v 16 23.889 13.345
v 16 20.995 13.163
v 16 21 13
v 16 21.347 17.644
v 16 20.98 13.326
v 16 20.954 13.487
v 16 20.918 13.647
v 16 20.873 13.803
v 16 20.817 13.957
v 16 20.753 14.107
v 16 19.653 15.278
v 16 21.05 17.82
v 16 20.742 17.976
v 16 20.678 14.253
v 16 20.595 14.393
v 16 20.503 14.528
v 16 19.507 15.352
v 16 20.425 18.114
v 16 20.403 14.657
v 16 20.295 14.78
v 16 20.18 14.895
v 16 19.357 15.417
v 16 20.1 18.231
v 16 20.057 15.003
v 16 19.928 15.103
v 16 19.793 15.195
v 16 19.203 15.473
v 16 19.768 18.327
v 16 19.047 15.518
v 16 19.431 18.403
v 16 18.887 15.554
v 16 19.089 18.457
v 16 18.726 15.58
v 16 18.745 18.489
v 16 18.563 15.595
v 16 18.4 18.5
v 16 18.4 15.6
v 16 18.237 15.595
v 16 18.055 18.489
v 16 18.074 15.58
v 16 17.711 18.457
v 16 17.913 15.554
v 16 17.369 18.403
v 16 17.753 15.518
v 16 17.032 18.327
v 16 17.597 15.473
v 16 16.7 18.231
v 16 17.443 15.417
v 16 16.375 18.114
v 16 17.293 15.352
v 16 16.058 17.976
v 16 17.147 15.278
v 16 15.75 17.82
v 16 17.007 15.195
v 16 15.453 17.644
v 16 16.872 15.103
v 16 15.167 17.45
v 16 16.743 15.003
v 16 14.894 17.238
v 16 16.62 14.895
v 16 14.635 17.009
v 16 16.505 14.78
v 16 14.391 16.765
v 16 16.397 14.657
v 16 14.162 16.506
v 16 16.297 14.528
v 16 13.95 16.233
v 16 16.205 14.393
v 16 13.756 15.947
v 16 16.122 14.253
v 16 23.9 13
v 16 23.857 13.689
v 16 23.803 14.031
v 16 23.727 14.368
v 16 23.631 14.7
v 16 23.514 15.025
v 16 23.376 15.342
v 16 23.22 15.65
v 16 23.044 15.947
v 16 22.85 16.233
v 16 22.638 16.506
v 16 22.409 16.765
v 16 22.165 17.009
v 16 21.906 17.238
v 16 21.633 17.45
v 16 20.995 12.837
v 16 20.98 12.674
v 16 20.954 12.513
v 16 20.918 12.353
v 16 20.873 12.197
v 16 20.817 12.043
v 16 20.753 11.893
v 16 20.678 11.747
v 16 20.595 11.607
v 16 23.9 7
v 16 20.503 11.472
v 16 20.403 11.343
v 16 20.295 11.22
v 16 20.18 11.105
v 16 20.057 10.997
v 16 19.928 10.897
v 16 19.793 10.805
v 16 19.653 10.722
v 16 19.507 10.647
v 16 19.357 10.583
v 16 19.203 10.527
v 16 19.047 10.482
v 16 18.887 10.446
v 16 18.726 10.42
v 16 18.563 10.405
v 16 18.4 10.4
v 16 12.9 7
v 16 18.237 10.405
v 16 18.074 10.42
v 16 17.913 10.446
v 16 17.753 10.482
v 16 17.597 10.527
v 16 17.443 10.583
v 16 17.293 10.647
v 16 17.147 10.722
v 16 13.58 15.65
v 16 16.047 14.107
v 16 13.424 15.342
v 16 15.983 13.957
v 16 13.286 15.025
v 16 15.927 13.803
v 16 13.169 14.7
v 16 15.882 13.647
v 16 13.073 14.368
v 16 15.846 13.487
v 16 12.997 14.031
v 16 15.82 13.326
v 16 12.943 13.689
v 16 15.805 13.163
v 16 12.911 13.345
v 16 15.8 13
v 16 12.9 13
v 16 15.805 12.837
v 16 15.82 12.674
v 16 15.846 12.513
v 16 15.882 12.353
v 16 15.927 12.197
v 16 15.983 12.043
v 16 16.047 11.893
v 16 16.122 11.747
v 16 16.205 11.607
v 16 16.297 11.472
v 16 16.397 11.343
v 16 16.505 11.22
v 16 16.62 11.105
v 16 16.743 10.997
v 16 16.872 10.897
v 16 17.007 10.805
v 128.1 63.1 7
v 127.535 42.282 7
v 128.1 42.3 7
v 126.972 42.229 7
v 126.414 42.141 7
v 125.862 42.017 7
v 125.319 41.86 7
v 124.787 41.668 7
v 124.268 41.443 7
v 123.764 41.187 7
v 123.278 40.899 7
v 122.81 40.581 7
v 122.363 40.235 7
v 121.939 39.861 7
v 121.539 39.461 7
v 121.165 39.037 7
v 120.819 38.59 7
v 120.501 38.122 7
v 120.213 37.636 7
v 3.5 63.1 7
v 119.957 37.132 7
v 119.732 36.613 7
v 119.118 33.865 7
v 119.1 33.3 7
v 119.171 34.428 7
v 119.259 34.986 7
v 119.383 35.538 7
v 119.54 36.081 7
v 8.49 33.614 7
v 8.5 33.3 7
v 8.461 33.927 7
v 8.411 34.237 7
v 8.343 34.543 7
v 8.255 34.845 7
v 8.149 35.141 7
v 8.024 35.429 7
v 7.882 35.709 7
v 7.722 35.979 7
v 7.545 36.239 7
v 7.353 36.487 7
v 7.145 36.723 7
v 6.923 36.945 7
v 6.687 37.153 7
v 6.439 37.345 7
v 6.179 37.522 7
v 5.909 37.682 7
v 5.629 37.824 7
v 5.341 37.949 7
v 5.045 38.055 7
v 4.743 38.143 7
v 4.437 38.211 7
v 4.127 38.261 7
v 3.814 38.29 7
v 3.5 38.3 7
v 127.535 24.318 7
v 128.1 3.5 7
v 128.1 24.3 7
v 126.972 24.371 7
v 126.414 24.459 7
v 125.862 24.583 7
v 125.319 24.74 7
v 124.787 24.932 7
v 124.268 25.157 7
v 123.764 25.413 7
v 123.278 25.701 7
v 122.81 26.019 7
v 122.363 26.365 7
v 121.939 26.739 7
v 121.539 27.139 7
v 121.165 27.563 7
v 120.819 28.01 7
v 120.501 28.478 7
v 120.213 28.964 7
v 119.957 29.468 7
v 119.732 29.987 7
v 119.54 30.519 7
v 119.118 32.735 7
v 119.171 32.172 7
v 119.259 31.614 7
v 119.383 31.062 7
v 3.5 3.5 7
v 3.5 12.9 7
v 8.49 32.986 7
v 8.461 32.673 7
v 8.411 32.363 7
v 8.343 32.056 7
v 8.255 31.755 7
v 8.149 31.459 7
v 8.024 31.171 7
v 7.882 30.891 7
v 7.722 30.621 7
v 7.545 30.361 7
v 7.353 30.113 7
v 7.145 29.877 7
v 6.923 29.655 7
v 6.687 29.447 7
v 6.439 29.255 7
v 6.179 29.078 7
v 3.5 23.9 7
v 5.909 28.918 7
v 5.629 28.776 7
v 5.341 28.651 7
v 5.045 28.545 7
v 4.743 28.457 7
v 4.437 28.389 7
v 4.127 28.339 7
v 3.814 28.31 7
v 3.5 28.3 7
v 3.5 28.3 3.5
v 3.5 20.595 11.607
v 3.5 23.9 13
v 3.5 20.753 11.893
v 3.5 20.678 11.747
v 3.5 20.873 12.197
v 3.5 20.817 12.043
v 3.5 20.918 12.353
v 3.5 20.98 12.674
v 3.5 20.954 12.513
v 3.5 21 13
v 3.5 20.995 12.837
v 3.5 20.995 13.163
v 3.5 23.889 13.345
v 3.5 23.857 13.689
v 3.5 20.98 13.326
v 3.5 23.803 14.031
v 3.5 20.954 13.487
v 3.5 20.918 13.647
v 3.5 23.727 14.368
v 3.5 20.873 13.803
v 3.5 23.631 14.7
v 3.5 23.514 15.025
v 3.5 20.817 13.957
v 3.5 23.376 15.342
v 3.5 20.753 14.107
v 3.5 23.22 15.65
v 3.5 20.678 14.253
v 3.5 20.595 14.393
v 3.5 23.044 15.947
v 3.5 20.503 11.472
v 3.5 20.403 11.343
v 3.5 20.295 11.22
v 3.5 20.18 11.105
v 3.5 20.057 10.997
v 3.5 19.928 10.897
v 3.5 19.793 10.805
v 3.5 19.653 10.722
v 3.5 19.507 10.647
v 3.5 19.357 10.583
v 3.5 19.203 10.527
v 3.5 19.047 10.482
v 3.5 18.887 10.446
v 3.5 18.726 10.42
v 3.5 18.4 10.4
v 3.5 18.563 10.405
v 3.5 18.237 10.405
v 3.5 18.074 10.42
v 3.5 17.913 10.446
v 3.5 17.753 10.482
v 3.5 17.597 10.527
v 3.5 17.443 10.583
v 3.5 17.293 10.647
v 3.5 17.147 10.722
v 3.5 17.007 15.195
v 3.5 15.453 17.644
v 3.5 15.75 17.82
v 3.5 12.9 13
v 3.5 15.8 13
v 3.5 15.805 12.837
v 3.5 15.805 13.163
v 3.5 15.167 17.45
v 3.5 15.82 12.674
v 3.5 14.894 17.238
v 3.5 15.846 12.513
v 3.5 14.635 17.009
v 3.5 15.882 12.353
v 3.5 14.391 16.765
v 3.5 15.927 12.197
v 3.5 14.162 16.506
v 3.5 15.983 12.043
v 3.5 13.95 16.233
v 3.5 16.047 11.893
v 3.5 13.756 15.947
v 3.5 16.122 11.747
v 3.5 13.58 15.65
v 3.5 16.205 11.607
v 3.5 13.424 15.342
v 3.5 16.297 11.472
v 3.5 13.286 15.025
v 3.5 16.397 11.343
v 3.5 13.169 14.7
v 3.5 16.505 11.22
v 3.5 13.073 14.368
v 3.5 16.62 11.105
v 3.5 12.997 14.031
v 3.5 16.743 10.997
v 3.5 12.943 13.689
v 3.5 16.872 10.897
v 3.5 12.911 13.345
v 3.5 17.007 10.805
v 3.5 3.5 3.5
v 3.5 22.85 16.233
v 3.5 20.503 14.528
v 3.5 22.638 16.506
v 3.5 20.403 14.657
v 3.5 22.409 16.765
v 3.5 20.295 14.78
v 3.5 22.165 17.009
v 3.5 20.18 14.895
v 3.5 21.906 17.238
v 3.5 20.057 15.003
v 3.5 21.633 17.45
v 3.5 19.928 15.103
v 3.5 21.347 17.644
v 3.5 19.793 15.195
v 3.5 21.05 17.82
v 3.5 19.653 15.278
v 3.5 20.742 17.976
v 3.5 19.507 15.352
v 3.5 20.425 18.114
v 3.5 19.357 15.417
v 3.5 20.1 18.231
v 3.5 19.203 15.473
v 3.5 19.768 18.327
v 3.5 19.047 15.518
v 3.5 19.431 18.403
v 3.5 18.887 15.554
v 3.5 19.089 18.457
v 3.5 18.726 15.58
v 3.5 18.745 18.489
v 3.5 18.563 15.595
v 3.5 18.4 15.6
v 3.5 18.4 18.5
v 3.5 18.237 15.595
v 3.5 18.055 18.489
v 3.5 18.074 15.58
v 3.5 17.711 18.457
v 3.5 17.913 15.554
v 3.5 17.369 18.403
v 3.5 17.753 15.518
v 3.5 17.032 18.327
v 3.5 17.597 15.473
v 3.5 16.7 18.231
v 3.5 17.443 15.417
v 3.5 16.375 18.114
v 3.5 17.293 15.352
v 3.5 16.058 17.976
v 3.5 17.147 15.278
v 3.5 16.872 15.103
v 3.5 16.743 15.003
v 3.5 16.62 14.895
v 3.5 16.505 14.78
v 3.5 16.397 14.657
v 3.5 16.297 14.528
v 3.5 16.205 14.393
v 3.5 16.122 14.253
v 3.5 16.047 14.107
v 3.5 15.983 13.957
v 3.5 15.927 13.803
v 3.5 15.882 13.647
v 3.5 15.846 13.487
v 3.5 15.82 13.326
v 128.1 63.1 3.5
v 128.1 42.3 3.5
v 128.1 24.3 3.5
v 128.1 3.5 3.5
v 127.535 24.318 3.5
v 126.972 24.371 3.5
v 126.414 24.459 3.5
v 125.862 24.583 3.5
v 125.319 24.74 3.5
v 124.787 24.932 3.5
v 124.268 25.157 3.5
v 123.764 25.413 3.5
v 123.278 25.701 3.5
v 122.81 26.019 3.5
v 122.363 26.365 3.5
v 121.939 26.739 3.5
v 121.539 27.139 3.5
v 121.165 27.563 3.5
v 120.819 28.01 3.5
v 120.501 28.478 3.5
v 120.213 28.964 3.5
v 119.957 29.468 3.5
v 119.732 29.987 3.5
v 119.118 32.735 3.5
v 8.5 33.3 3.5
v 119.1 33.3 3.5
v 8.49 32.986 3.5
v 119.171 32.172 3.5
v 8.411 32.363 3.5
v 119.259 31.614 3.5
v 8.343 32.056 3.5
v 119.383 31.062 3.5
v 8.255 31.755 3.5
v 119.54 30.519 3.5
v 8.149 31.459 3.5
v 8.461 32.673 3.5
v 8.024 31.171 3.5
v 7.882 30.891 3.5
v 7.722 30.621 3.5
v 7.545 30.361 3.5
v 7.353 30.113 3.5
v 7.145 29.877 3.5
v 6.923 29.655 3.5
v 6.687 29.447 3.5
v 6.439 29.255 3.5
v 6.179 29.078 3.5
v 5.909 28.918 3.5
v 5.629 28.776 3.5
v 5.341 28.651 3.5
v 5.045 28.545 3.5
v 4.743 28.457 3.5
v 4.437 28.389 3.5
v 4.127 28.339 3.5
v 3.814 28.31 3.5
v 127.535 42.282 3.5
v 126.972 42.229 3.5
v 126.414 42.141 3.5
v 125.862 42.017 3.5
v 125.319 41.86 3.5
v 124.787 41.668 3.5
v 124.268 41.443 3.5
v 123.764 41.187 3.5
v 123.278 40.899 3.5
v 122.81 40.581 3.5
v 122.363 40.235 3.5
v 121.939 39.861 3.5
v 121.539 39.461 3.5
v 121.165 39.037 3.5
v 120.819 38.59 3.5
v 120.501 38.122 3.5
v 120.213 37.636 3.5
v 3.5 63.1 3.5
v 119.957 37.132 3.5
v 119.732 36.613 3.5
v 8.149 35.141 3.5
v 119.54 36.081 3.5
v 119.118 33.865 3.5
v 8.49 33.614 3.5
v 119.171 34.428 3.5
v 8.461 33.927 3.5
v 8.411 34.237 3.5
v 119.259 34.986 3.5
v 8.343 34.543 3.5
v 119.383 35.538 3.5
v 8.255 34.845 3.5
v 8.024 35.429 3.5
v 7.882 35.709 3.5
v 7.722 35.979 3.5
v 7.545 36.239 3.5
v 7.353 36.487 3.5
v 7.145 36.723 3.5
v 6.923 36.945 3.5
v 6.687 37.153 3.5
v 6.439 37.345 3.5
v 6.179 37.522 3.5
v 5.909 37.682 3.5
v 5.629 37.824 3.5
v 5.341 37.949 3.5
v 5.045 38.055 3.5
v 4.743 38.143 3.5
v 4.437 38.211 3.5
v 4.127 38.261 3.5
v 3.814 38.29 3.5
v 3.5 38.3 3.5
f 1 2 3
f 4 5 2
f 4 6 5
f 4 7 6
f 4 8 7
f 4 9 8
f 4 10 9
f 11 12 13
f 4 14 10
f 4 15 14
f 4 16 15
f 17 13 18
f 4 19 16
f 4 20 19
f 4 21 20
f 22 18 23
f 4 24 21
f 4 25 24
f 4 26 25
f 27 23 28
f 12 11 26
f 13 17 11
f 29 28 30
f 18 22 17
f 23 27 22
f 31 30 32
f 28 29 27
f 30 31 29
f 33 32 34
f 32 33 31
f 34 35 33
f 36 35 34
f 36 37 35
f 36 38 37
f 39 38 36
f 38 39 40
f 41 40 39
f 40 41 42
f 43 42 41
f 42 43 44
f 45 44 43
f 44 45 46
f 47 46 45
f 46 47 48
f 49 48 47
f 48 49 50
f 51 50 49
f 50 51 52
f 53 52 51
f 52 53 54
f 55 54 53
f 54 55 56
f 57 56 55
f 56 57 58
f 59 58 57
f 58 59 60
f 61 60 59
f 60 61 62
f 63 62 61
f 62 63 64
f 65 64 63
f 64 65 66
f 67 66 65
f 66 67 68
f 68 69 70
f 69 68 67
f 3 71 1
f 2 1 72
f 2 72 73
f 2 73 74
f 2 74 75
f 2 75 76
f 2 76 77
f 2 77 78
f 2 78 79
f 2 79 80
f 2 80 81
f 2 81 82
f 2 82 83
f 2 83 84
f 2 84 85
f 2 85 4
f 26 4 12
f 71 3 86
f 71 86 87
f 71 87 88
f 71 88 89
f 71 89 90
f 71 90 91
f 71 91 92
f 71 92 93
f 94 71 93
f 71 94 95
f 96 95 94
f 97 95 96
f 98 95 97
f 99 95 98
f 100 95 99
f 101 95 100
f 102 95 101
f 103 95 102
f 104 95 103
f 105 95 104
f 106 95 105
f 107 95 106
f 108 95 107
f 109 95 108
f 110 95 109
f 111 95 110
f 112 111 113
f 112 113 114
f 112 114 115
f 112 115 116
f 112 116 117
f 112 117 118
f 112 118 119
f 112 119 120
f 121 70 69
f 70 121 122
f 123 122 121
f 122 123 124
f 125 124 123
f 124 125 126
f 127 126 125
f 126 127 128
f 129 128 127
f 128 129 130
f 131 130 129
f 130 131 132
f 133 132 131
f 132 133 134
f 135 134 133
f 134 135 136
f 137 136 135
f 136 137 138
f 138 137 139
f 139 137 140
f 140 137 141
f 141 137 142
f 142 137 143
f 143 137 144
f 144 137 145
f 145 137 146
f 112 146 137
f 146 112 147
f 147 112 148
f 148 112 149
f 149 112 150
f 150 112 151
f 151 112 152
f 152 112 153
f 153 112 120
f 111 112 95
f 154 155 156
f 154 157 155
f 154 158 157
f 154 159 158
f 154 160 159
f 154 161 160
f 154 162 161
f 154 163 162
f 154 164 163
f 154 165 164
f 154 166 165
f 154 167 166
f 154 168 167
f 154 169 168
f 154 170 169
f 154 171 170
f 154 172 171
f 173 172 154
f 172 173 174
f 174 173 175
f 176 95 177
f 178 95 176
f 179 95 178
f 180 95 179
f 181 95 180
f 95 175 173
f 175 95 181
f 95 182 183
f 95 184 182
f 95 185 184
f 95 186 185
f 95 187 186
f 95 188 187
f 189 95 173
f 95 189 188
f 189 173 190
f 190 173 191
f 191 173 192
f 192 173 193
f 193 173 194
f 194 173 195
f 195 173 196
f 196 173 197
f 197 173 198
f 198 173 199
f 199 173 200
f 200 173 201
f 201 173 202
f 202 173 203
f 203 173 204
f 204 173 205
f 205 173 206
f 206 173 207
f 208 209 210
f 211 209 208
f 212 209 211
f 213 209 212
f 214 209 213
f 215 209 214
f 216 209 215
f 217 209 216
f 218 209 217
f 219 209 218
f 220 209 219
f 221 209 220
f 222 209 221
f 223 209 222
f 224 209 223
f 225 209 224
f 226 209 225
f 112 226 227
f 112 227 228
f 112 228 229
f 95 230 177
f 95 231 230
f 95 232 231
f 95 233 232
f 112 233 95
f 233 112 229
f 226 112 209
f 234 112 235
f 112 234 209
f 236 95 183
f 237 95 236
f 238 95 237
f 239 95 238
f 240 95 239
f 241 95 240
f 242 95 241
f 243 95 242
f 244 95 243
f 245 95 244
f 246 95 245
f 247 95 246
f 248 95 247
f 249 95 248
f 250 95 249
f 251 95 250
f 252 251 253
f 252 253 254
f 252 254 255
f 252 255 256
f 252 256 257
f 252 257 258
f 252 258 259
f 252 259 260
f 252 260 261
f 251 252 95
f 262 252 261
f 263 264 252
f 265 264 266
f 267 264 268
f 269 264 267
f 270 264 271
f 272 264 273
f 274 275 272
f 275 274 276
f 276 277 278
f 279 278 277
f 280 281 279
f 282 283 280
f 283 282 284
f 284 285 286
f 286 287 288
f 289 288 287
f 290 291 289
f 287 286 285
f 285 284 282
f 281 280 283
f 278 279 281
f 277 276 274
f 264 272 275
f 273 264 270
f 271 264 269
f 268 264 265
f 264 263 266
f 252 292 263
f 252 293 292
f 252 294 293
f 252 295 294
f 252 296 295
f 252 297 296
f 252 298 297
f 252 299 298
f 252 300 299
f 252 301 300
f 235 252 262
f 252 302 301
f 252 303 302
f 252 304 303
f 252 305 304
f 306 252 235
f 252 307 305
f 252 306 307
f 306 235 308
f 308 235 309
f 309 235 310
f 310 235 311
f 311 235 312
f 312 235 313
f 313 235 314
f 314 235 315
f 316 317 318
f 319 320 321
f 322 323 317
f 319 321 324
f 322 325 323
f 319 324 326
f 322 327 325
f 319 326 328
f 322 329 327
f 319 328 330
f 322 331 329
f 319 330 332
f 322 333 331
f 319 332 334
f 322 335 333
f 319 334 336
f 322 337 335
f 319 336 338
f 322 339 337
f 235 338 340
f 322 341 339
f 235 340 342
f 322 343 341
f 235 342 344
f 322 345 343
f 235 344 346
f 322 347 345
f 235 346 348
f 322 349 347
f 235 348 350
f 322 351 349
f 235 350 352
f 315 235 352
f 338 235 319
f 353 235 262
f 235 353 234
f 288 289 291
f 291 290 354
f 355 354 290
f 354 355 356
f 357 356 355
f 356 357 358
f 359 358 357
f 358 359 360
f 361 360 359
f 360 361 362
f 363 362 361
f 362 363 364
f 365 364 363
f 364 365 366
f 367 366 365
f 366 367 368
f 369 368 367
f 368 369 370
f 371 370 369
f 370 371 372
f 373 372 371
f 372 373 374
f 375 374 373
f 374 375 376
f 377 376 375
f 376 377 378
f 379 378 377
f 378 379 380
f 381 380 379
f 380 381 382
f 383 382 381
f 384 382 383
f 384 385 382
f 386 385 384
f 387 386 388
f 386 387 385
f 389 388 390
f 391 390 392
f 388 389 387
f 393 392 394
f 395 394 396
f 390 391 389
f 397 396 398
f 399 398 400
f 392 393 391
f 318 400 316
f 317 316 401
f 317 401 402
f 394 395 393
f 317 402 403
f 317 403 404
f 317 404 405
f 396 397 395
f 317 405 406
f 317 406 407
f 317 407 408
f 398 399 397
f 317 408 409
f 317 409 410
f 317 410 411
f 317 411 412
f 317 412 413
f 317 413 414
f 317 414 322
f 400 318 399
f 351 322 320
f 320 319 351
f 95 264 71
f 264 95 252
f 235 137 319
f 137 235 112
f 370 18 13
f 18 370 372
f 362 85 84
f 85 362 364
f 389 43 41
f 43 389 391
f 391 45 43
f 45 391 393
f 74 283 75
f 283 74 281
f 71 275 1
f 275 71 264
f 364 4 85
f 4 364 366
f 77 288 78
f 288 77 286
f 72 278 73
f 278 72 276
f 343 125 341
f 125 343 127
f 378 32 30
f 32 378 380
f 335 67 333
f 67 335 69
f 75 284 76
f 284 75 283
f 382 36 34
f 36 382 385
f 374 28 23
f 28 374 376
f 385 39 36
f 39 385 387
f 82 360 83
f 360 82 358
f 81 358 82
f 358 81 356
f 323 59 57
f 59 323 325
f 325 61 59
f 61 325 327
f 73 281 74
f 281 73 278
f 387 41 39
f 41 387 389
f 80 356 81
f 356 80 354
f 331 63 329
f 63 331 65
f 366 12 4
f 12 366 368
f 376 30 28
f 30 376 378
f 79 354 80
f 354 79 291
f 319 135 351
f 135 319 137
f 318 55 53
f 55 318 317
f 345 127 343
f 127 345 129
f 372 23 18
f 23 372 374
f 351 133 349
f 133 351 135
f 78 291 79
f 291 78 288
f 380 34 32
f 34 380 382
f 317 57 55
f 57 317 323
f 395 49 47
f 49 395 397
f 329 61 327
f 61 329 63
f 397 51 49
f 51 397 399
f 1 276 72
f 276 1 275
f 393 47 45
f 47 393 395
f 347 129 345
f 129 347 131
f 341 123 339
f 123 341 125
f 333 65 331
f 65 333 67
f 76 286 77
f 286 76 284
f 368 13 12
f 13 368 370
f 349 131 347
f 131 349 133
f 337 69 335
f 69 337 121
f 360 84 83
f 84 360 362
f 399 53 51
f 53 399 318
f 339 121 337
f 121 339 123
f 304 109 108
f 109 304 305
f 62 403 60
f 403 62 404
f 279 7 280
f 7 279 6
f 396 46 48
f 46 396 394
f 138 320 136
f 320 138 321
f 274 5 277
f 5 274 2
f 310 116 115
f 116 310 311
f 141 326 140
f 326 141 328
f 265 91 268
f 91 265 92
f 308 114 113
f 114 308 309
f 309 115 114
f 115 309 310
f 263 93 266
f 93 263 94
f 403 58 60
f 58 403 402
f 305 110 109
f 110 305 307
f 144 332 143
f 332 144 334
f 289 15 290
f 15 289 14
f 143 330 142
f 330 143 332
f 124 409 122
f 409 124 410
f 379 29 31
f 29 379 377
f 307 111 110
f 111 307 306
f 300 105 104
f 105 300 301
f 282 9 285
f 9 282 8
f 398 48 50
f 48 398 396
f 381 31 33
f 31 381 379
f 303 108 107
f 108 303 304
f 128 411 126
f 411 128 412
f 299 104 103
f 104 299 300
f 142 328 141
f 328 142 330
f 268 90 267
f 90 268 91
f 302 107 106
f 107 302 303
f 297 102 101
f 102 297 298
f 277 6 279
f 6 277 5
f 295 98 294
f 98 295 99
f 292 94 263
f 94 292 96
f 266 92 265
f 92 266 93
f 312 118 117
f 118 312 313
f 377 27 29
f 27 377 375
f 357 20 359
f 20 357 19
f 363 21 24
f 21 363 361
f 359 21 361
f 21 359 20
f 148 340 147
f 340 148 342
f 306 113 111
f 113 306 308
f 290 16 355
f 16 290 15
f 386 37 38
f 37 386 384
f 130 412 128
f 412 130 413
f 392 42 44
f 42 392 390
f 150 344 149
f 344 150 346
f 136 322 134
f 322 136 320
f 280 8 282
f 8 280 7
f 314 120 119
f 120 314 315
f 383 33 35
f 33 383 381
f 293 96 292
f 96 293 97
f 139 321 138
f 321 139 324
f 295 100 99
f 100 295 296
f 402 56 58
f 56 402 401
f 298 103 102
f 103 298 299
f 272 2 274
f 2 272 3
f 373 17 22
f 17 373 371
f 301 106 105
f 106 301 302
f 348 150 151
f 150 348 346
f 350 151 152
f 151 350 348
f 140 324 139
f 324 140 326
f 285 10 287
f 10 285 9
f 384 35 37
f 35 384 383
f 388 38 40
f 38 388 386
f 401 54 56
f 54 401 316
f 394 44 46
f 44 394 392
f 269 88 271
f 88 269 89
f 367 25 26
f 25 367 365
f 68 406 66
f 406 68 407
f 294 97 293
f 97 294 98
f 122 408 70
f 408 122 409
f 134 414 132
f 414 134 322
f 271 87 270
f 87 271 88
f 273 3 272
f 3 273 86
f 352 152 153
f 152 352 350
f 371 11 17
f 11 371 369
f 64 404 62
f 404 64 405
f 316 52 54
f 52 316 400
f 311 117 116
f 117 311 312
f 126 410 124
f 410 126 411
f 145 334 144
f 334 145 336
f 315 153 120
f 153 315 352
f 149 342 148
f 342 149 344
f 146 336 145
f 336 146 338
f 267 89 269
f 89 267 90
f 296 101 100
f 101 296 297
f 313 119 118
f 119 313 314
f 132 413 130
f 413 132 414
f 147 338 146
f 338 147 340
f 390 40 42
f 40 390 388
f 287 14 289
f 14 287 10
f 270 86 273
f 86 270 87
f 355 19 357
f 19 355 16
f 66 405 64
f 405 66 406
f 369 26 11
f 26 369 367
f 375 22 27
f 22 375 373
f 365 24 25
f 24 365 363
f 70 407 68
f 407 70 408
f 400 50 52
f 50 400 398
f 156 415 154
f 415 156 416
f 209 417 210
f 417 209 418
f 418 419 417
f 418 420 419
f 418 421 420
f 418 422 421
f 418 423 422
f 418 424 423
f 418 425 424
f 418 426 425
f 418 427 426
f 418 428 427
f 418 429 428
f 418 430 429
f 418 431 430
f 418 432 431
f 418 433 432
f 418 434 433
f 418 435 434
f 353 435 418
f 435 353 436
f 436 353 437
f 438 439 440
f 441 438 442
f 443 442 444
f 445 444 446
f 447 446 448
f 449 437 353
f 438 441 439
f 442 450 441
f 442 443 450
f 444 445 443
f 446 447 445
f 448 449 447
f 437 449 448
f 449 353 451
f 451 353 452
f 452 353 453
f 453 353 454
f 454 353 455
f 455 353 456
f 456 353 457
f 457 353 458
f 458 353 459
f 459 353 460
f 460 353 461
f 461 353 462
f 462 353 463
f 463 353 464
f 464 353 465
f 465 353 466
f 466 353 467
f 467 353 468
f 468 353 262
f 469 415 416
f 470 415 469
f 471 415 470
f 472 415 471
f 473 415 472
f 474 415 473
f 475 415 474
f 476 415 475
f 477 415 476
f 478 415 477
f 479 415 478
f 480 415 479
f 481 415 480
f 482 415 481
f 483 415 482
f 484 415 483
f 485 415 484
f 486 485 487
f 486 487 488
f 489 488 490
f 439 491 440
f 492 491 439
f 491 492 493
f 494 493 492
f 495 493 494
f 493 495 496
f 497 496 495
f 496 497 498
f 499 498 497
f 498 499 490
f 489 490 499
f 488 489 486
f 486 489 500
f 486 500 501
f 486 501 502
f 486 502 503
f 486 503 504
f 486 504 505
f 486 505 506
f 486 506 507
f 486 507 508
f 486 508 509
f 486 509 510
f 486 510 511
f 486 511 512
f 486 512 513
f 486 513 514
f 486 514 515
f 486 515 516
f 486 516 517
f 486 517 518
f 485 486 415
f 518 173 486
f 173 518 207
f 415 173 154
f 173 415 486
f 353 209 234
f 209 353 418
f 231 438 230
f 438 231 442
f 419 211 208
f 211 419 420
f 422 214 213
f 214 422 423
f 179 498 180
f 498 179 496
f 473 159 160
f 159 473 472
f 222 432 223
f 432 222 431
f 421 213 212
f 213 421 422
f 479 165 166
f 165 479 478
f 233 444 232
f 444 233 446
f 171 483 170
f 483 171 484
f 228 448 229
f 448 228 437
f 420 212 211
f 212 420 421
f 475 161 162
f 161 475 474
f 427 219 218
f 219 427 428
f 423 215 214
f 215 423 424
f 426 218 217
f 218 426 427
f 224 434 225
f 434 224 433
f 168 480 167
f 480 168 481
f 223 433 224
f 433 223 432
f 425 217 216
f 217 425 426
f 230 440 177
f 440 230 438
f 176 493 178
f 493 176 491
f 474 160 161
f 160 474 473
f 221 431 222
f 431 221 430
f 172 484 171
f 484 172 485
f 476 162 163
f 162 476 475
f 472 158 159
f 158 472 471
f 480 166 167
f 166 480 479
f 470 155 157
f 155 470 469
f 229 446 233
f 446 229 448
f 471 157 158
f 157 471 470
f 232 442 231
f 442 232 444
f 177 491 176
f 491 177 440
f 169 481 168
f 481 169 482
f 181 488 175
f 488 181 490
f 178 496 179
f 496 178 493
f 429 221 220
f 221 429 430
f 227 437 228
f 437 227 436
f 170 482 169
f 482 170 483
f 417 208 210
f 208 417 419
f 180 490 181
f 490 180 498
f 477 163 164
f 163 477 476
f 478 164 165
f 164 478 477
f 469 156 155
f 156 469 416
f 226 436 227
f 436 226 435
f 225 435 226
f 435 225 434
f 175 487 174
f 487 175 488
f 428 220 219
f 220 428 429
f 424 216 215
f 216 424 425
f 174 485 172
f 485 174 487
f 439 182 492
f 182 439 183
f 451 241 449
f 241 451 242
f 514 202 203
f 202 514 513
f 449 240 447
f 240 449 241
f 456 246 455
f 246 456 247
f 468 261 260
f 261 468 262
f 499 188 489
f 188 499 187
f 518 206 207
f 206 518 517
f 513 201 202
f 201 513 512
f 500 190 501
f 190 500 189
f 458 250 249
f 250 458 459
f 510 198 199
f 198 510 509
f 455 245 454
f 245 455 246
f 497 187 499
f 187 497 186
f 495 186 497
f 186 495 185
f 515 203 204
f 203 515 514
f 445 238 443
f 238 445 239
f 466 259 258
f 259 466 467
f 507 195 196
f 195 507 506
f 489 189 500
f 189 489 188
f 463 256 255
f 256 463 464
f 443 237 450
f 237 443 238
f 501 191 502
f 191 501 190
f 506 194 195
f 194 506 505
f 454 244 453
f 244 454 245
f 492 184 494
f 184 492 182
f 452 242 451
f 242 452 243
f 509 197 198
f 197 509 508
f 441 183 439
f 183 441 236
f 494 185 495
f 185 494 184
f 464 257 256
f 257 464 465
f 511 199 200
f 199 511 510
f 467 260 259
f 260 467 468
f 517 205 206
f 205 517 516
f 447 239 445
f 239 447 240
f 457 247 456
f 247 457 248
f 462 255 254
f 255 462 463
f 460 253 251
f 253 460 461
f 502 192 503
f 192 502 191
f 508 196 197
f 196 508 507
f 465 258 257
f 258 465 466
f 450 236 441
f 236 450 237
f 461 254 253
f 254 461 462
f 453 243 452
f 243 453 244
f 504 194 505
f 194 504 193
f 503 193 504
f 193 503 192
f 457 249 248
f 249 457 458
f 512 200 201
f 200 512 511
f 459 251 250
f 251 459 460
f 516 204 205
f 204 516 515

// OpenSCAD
length = 60-.4;//52;
width = 125-.4;//86;
height = 32;
wall = 3.5;
o_width = width + wall + wall;
o_length = length + wall + wall;
o_height = height + wall;

resolution = 100;

$fn = resolution;

// outer box
standoff_id=3.45;
standoff_od=7;
standoff_od_wall_depth = wall-2;
standoff_width = 80.8;
standoff_length = 47.25;
//difference(){
    // main box
    //cube([o_width, o_length, o_height]);
    translate([wall, wall, 0]) {
        translate([0, 0, wall]) {
            // 9999 to take out the whole face
            difference(){
            cube([width, length, wall]);
                translate([width, length/2, 0]) {
                    cylinder(h=100, r=9);
                }
                translate([0, length/2, 0]) {
                    cylinder(h=100, r=5);
                }
                        //translate([17, 6, 0]) {

            //cube([width-27, length-12, wall]);
                        //}

            }
        }
    }
//}


//add the pin mechanism
pin_od = 11;
pin_id = 5.2;
pin_len = 16;
wall_offset = 6;
translate([wall, (1/4)*length+wall-pin_od/2, wall+wall]){
    difference() {
        union(){
            cube([pin_len-wall, pin_od, wall_offset]);
            rotate([0,90,0]) {
                translate([-wall_offset,pin_od/2,0]) {
                    cylinder(h=pin_len-wall, d=pin_od);
                }
            }
        }
        rotate([0,90,0]) {
            translate([-wall_offset,pin_od/2,0]) {
                cylinder(h=pin_len-wall, d=pin_id);   
            }
        }
    }
}
